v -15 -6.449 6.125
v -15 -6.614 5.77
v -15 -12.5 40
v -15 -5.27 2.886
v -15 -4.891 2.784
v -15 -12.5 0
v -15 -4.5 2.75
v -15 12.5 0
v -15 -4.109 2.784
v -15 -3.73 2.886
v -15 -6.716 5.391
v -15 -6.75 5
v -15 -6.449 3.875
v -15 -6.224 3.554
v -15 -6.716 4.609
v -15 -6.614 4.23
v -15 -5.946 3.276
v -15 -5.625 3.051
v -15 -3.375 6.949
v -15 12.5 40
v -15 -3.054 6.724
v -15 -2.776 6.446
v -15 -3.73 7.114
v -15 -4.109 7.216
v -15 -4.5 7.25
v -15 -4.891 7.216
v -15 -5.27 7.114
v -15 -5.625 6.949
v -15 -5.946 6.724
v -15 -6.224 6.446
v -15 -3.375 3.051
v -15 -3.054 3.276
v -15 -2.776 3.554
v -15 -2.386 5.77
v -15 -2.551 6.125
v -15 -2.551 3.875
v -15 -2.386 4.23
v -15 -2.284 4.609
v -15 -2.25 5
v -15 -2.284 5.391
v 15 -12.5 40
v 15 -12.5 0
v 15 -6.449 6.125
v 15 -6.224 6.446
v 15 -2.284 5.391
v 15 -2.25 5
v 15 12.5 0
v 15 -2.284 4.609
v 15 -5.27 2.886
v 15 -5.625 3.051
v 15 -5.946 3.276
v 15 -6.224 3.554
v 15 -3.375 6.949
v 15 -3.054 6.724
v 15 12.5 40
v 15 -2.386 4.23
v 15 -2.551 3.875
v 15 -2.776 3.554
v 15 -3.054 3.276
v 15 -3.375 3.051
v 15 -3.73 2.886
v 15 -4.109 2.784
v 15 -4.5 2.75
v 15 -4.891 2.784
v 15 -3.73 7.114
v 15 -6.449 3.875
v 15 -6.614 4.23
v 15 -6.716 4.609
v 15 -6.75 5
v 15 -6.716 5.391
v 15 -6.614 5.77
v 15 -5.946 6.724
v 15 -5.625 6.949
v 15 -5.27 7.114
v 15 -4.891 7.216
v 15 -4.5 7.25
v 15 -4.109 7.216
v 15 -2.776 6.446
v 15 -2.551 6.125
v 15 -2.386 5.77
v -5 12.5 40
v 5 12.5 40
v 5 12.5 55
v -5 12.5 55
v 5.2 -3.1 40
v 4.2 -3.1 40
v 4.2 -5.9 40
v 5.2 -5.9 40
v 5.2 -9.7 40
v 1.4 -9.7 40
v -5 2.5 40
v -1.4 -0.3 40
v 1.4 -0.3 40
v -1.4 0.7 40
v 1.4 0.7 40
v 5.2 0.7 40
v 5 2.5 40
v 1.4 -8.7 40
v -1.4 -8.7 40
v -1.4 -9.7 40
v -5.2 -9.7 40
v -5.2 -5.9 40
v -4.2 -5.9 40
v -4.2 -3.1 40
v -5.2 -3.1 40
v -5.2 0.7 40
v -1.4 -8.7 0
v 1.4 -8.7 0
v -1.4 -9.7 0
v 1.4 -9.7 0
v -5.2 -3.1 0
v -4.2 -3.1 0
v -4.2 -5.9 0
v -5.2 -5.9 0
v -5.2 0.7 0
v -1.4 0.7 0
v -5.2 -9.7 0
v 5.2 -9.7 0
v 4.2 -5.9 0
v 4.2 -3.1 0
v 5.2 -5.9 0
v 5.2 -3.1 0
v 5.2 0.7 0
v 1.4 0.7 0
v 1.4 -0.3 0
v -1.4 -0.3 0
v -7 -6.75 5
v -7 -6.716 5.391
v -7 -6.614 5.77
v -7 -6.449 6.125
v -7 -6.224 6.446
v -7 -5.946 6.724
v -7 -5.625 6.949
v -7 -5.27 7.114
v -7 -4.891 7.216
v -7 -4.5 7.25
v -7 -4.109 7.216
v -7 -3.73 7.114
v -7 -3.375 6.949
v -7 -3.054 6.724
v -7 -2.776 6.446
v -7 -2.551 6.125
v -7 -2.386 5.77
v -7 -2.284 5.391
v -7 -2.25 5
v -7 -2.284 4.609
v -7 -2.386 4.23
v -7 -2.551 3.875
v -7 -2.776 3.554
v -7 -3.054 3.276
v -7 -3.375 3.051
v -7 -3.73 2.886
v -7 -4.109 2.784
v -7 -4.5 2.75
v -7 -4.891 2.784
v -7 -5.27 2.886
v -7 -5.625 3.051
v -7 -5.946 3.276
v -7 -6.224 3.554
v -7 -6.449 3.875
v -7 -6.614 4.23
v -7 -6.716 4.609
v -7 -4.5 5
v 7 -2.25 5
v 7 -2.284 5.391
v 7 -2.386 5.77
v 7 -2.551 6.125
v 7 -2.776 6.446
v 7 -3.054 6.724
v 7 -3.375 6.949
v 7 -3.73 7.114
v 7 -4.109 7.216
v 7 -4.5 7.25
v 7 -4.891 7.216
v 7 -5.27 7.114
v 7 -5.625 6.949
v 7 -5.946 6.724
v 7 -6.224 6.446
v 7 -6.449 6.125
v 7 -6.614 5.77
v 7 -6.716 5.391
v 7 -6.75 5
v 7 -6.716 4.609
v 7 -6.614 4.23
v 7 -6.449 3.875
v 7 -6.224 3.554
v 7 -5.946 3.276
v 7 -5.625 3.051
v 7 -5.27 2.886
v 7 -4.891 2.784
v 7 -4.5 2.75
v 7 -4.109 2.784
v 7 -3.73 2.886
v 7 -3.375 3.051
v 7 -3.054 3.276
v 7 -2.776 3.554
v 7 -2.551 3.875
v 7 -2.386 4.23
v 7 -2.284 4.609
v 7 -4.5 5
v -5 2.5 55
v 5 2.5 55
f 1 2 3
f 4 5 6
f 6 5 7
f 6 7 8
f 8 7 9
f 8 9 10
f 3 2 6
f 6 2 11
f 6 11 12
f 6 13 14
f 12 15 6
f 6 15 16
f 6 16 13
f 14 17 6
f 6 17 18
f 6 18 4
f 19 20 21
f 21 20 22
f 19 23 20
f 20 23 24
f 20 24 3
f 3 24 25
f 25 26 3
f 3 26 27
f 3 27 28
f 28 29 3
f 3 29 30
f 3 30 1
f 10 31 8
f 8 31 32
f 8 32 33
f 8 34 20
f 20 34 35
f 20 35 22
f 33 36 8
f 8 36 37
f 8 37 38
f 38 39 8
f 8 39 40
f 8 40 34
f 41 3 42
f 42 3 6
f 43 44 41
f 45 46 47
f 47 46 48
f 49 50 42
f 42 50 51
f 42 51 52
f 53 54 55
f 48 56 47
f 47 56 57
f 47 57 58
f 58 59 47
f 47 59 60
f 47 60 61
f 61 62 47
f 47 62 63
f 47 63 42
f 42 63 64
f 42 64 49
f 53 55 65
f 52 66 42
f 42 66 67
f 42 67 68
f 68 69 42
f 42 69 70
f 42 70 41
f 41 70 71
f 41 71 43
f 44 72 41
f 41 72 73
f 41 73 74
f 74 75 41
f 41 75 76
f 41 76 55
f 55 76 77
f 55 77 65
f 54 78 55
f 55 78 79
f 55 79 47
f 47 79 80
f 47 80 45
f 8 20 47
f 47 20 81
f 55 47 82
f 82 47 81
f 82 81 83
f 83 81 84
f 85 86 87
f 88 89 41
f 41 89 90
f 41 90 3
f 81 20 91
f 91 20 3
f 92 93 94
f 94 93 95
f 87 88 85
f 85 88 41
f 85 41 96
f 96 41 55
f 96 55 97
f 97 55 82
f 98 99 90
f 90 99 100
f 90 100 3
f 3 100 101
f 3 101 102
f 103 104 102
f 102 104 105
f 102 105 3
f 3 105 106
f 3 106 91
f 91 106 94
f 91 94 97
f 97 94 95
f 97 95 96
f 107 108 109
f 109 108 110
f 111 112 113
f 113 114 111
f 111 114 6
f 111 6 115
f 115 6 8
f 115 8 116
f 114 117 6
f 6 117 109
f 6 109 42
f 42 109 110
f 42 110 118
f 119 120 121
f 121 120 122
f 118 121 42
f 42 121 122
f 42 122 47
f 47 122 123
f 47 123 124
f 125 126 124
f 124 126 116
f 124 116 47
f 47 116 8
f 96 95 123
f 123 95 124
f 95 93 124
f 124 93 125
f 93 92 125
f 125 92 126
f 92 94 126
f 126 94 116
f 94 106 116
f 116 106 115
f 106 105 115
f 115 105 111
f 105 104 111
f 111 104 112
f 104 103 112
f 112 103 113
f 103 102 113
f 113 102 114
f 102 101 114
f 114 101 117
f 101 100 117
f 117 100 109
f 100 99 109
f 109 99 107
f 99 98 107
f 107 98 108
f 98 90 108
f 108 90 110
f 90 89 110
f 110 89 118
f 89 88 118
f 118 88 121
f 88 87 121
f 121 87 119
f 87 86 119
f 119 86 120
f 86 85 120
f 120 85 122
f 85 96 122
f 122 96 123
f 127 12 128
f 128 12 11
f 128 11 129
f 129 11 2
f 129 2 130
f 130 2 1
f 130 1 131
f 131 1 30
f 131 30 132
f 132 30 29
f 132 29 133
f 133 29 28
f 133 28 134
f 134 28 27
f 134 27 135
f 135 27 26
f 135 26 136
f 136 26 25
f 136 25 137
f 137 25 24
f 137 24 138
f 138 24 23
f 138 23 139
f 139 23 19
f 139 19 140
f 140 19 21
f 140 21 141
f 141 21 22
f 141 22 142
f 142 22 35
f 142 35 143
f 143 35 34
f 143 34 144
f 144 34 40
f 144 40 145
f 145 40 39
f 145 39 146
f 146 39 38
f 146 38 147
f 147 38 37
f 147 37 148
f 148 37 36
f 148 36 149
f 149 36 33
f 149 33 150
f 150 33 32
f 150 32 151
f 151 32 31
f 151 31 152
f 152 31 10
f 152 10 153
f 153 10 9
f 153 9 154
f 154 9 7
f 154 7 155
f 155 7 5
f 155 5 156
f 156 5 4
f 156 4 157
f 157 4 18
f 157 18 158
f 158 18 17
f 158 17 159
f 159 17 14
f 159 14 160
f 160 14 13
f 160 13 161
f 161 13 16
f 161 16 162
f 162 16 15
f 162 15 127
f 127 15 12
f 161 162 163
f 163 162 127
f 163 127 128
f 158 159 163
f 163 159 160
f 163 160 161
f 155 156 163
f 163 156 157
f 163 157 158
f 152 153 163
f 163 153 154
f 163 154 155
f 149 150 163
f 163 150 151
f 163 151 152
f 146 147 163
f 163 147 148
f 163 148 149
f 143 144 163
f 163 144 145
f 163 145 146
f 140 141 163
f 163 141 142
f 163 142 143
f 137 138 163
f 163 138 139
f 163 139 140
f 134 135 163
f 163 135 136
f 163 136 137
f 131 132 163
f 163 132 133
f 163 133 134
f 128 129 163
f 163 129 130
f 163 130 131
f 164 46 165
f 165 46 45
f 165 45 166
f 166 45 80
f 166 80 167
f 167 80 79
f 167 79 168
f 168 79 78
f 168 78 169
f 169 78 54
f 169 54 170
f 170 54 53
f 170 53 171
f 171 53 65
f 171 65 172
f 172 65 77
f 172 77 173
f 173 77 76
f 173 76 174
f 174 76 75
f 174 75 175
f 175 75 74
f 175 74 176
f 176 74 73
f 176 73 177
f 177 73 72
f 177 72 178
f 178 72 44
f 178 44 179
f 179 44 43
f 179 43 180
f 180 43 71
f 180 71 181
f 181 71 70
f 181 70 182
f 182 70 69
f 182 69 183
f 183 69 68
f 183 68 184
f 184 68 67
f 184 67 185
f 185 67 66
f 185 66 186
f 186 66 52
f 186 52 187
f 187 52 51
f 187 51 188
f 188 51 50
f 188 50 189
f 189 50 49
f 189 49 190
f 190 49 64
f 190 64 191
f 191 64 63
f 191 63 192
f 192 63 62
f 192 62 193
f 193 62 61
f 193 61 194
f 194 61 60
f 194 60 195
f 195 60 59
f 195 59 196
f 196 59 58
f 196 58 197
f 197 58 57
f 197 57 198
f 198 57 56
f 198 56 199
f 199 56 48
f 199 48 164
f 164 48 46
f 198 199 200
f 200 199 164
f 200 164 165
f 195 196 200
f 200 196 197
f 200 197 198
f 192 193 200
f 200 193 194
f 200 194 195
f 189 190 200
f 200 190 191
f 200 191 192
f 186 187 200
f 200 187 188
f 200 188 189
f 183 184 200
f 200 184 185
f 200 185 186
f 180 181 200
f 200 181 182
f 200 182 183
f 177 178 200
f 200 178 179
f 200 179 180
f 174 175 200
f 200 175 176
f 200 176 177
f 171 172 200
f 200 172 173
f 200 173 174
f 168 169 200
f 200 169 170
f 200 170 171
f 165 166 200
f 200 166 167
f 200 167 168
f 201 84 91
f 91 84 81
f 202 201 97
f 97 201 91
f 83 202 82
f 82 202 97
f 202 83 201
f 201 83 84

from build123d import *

# Parameters (mm, degrees)
ESQUISSE1_W             = 30
ESQUISSE1_H             = 25
BOSS_EXTRU_1_DEPTH      = 40
ENL_V_MAT_EXTRU_1_DEPTH = 45.511234537
ESQUISSE4_R             = 2.25
ENL_V_MAT_EXTRU_2_DEPTH = 8
ENL_V_START             = -8
ESQUISSE5_R             = 2.25
ENL_V_MAT_EXTRU_3_DEPTH = 8
ESQUISSE6_W             = 10
ESQUISSE6_H             = 10
BOSS_EXTRU_2_DEPTH      = 15


with BuildPart() as part:
    # Esquisse1 → Boss.-Extru.1 (new body)
    with BuildSketch(Plane.XY):
        Rectangle(ESQUISSE1_W, ESQUISSE1_H)
    extrude(amount=BOSS_EXTRU_1_DEPTH)

    # Esquisse3 → Enlèv. mat.-Extru.1 (cut, through all)
    with BuildSketch(Plane(origin=(0, 0, 0), x_dir=(-1, 0, 0), z_dir=(0, 0, -1))):
        Polygon((-5.2, 0.7), (-5.2, -3.1), (-4.2, -3.1), (-4.2, -5.9), (-5.2, -5.9), (-5.2, -9.7), (-1.4, -9.7), (-1.4, -8.7), (1.4, -8.7), (1.4, -9.7), (5.2, -9.7), (5.2, -5.9), (4.2, -5.9), (4.2, -3.1), (5.2, -3.1), (5.2, 0.7), (1.4, 0.7), (1.4, -0.3), (-1.4, -0.3), (-1.4, 0.7), align=None)
    extrude(amount=-ENL_V_MAT_EXTRU_1_DEPTH, mode=Mode.SUBTRACT)

    # Esquisse4 → Enlèv. mat.-Extru.2 (cut)
    with BuildSketch(Plane.ZY.offset(15)):
        with Locations(Location((5, -4.5, 0), (0, 0, 270))):
            Circle(ESQUISSE4_R)
    extrude(amount=-ENL_V_MAT_EXTRU_2_DEPTH, mode=Mode.SUBTRACT)

    # Esquisse5 → Enlèv. mat.-Extru.3 (cut)
    with BuildSketch(Plane(origin=(15, 0, 0), x_dir=(0, 0, -1), z_dir=(1, 0, 0)).offset(ENL_V_START)):
        with Locations(Location((-5, -4.5, 0), (0, 0, 270))):
            Circle(ESQUISSE5_R)
    extrude(amount=ENL_V_MAT_EXTRU_3_DEPTH, mode=Mode.SUBTRACT)

    # Esquisse6 → Boss.-Extru.2 (add)
    with BuildSketch(Plane.XY.offset(40)):
        with Locations((0, 7.5)):
            Rectangle(ESQUISSE6_W, ESQUISSE6_H)
    extrude(amount=BOSS_EXTRU_2_DEPTH)


solid = part.part
